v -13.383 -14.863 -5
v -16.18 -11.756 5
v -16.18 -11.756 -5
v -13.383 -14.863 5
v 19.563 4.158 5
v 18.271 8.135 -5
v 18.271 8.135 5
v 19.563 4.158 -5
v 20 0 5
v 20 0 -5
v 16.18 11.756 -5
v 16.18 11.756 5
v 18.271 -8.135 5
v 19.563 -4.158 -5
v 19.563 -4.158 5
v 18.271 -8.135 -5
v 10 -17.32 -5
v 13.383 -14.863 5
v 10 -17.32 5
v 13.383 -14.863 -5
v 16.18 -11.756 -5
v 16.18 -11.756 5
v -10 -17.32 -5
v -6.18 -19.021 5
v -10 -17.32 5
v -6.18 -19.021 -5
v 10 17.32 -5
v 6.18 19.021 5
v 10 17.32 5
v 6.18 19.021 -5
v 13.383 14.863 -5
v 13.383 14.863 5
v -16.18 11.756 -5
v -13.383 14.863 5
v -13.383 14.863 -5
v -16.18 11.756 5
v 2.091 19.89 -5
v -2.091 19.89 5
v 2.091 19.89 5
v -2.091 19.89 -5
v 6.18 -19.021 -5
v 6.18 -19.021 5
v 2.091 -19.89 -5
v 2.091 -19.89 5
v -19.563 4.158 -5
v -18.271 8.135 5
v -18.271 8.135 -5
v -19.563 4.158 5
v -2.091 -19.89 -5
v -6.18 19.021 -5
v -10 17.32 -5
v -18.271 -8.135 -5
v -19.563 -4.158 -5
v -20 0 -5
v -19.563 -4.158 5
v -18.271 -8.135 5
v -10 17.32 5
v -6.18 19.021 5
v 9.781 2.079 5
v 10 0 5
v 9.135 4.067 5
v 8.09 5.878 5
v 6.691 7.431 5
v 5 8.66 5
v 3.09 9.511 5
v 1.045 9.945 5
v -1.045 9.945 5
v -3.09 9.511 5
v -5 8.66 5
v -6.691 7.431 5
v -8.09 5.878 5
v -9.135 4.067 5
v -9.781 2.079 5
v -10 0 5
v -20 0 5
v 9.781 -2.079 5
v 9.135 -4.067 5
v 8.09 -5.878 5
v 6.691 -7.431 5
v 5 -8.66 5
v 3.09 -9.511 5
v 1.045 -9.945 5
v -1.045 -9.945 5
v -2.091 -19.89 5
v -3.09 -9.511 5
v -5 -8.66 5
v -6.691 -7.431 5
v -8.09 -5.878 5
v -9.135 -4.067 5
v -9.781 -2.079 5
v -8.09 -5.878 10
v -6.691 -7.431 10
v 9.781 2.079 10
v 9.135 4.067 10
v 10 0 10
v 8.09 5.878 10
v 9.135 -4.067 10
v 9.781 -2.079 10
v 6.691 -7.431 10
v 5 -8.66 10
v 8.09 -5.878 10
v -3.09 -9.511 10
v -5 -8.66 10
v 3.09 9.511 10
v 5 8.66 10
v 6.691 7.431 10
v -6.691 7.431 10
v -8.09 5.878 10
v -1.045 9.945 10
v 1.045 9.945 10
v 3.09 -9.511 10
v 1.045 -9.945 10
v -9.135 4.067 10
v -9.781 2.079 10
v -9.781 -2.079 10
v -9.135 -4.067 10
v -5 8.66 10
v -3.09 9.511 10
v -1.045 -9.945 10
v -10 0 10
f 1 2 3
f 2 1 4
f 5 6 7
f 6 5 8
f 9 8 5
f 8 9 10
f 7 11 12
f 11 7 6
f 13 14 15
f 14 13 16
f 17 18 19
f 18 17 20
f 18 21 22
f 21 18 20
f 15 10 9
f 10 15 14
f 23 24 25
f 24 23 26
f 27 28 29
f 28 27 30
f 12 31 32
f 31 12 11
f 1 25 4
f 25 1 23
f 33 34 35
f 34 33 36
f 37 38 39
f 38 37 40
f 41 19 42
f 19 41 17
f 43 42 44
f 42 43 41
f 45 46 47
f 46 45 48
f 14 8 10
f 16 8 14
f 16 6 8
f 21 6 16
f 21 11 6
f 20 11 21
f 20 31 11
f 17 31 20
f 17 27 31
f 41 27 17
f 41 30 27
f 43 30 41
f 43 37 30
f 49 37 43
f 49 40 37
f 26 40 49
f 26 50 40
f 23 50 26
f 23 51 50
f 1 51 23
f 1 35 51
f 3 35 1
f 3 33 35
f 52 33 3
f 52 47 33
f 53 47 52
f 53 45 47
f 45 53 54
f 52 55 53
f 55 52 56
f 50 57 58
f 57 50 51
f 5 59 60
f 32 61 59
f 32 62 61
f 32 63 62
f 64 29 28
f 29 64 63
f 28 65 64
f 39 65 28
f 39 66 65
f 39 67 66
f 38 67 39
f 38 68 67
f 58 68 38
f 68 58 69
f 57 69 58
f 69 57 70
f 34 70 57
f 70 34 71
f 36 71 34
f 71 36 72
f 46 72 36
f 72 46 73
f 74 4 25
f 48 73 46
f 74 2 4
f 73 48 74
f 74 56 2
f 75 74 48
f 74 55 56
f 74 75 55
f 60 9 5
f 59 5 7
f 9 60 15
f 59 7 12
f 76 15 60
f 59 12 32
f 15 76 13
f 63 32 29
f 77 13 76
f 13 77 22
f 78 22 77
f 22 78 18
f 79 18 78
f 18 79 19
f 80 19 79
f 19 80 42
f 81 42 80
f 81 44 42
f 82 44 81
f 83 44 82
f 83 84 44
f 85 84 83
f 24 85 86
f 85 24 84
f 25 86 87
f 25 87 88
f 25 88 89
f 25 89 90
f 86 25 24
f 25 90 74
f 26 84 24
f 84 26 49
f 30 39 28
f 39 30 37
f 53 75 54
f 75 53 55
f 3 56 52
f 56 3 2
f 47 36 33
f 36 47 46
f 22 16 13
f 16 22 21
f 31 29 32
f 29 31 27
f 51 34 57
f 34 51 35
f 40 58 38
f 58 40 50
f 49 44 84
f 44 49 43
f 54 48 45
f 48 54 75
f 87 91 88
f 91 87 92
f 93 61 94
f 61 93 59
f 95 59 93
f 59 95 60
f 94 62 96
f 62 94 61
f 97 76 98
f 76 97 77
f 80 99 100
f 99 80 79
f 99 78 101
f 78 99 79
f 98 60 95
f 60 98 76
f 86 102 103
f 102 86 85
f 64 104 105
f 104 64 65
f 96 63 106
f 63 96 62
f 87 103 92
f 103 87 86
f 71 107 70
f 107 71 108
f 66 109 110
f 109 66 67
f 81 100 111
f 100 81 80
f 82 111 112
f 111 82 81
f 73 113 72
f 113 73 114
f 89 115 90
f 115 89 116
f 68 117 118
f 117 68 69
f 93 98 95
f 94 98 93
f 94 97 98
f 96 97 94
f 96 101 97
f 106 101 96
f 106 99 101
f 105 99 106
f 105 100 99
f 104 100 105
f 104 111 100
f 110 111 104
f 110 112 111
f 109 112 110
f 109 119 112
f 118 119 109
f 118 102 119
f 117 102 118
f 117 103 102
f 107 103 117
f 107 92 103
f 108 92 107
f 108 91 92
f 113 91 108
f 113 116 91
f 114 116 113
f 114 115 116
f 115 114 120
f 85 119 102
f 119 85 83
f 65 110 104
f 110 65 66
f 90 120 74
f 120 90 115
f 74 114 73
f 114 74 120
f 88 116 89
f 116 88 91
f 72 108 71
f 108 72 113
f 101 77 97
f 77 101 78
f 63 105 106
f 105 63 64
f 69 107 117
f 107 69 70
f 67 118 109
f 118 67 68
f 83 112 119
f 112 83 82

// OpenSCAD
// Parameters for the central_hub
base_diameter = 40; // Diameter of the flat base
base_height = 10;   // Height of the flat base
raised_diameter = 20; // Diameter of the raised central section
raised_height = 10;   // Height of the raised central section

// Central hub model
module central_hub() {
    // Base cylinder
    cylinder(h = base_height, d = base_diameter, center = true);
    
    // Raised central section
    translate([0, 0, base_height / 2])
        cylinder(h = raised_height, d = raised_diameter, center = true);
}

// Render the central hub
central_hub();
